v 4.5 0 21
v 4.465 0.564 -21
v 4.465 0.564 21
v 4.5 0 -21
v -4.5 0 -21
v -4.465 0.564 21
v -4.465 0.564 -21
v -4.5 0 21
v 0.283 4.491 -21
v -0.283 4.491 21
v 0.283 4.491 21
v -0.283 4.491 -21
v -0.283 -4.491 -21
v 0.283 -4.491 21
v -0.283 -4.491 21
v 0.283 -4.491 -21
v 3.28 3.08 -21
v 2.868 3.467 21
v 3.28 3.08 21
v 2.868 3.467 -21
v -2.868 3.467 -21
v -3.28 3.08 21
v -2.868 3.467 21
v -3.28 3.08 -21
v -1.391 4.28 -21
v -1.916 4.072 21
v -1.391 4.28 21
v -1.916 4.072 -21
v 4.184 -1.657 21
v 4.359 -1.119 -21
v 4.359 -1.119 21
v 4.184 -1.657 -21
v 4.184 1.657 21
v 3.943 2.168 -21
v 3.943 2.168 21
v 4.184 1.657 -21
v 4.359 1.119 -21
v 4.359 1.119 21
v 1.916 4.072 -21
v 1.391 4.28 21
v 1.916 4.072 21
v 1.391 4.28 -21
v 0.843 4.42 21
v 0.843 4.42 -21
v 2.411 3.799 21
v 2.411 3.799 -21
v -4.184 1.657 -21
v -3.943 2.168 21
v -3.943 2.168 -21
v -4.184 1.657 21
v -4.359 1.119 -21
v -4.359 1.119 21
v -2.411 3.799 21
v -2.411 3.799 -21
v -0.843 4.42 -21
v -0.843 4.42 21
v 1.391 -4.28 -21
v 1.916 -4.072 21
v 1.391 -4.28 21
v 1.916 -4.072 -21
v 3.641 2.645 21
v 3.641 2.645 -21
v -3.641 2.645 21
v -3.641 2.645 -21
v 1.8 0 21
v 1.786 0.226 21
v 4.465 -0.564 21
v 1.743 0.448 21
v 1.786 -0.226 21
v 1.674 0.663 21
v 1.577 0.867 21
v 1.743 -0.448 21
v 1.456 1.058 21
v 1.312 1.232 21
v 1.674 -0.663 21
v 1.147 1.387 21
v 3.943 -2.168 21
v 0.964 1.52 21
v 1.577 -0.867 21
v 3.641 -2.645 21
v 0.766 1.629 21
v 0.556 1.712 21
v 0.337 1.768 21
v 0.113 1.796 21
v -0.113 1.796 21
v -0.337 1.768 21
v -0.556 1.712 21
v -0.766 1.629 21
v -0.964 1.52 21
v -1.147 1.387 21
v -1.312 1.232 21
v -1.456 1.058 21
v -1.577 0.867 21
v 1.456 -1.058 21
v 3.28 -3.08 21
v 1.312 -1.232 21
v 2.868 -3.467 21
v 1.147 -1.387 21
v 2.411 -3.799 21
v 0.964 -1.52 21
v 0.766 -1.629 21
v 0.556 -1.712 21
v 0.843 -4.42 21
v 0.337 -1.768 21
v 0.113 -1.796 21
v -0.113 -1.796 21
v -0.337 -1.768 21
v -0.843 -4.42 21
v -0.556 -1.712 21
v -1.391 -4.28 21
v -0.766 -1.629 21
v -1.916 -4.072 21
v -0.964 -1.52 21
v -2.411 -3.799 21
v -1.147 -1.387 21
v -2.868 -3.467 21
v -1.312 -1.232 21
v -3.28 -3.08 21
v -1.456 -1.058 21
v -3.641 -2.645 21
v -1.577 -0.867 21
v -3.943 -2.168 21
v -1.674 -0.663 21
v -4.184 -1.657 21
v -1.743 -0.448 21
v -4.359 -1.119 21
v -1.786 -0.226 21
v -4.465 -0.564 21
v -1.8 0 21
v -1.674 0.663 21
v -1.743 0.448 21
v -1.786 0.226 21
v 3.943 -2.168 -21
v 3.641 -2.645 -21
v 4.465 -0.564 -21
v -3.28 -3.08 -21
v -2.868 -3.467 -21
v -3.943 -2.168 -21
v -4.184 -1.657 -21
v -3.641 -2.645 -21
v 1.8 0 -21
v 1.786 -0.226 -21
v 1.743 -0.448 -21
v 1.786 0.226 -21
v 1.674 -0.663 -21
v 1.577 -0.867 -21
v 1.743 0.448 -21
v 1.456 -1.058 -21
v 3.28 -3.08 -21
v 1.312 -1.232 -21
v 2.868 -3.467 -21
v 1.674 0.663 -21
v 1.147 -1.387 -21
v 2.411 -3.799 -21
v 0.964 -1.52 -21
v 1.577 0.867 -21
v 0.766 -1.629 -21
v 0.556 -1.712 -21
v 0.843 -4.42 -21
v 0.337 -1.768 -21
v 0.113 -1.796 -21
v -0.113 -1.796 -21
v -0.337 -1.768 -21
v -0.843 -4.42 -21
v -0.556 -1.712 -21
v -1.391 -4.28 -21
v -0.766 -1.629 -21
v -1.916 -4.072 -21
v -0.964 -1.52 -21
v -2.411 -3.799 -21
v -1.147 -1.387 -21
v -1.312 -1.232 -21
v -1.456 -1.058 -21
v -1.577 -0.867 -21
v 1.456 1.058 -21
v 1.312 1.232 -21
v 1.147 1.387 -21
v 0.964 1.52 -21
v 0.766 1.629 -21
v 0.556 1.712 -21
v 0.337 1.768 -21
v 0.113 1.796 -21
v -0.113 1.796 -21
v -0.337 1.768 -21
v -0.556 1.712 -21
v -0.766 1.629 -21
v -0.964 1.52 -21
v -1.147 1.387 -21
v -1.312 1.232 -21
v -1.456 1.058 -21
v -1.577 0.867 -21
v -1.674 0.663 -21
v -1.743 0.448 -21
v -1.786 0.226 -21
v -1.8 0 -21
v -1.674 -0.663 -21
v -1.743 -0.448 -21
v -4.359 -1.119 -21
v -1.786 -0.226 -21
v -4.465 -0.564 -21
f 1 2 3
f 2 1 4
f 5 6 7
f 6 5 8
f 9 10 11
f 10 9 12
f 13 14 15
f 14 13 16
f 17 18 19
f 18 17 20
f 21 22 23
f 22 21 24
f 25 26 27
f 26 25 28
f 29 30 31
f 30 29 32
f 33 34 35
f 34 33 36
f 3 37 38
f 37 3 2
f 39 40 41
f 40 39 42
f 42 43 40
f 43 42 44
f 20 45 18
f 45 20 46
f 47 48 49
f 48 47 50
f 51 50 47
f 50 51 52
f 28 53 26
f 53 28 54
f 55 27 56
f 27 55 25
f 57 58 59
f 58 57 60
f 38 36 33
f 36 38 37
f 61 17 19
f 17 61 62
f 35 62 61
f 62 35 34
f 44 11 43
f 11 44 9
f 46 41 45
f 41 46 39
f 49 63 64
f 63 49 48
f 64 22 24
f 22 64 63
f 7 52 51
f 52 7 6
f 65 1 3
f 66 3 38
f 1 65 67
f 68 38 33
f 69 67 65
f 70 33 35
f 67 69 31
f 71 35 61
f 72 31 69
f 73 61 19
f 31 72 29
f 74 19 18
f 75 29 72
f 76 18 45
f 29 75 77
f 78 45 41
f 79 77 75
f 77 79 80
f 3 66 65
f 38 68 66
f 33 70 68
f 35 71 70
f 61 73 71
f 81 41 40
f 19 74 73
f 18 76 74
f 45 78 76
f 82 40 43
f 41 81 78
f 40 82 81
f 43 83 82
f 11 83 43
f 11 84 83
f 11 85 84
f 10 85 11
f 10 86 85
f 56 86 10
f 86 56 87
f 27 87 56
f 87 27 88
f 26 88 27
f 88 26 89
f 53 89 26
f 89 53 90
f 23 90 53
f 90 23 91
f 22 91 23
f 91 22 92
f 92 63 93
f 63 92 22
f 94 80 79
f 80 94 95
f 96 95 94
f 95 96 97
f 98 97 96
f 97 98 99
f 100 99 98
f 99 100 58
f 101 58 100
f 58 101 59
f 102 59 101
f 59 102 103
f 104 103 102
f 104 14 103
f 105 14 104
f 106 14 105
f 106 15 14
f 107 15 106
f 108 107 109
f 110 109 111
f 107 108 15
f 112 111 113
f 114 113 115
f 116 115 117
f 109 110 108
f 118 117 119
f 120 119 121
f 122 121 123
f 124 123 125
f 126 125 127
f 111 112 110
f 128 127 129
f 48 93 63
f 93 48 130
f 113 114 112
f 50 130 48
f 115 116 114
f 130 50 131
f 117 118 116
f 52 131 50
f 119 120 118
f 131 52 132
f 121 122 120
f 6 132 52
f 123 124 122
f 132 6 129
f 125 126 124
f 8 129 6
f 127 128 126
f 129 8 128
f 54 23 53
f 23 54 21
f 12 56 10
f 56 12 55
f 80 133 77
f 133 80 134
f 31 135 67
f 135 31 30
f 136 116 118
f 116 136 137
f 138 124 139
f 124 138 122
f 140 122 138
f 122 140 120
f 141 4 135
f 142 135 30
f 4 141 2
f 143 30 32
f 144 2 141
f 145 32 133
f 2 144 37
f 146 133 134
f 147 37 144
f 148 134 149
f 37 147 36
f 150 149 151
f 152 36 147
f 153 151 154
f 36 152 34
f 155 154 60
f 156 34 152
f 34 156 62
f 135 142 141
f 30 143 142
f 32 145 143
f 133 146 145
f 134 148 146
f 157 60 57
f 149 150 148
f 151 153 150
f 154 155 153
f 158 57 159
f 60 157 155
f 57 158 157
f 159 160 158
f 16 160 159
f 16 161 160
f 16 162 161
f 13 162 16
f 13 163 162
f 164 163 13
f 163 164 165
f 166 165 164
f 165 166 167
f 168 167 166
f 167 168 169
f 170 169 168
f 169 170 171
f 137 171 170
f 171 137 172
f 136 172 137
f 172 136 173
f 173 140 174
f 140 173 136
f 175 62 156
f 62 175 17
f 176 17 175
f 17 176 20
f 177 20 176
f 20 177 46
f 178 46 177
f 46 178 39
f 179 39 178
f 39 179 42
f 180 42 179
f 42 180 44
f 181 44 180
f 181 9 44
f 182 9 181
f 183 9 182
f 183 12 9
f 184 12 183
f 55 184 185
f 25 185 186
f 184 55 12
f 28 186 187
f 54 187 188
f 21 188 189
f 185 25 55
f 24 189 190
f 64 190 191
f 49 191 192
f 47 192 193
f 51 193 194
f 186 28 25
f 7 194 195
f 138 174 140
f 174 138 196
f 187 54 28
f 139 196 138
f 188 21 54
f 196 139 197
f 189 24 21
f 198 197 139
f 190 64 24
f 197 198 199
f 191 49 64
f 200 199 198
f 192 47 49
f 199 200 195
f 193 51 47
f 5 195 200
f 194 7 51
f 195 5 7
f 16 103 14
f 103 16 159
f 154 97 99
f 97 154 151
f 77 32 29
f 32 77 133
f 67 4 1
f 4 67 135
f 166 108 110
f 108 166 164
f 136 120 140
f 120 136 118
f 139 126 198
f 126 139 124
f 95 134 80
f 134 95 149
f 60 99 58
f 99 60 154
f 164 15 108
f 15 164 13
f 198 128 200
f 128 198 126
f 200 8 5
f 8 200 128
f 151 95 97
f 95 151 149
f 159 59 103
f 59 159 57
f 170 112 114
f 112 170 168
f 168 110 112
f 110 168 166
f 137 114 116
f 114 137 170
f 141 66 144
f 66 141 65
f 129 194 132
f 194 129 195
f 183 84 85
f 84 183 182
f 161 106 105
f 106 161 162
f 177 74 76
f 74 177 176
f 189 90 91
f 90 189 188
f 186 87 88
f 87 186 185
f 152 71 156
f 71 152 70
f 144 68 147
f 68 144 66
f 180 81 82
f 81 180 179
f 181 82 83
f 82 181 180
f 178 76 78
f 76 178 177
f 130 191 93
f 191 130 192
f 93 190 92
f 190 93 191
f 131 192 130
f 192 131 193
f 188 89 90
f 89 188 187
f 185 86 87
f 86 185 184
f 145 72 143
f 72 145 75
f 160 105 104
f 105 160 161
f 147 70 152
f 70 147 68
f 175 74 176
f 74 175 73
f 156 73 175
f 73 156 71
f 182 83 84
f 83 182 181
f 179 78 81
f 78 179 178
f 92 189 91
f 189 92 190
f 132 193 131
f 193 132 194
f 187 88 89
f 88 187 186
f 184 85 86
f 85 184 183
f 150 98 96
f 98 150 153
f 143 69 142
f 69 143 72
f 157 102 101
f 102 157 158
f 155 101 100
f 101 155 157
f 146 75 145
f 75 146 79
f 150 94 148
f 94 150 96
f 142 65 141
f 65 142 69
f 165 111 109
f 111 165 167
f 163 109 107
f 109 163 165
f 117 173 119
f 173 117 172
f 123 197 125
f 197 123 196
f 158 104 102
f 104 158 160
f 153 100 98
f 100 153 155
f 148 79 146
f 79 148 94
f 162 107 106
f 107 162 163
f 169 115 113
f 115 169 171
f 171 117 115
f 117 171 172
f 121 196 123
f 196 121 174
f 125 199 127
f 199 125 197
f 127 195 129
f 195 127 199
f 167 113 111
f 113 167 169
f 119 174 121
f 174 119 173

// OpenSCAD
$fn = 50;


difference() {
	union() {
		translate(v = [0, 0, -21.0000000000]) {
			cylinder(h = 42, r = 4.5000000000);
		}
	}
	union() {
		translate(v = [0, 0, -100.0000000000]) {
			cylinder(h = 200, r = 1.8000000000);
		}
	}
}
